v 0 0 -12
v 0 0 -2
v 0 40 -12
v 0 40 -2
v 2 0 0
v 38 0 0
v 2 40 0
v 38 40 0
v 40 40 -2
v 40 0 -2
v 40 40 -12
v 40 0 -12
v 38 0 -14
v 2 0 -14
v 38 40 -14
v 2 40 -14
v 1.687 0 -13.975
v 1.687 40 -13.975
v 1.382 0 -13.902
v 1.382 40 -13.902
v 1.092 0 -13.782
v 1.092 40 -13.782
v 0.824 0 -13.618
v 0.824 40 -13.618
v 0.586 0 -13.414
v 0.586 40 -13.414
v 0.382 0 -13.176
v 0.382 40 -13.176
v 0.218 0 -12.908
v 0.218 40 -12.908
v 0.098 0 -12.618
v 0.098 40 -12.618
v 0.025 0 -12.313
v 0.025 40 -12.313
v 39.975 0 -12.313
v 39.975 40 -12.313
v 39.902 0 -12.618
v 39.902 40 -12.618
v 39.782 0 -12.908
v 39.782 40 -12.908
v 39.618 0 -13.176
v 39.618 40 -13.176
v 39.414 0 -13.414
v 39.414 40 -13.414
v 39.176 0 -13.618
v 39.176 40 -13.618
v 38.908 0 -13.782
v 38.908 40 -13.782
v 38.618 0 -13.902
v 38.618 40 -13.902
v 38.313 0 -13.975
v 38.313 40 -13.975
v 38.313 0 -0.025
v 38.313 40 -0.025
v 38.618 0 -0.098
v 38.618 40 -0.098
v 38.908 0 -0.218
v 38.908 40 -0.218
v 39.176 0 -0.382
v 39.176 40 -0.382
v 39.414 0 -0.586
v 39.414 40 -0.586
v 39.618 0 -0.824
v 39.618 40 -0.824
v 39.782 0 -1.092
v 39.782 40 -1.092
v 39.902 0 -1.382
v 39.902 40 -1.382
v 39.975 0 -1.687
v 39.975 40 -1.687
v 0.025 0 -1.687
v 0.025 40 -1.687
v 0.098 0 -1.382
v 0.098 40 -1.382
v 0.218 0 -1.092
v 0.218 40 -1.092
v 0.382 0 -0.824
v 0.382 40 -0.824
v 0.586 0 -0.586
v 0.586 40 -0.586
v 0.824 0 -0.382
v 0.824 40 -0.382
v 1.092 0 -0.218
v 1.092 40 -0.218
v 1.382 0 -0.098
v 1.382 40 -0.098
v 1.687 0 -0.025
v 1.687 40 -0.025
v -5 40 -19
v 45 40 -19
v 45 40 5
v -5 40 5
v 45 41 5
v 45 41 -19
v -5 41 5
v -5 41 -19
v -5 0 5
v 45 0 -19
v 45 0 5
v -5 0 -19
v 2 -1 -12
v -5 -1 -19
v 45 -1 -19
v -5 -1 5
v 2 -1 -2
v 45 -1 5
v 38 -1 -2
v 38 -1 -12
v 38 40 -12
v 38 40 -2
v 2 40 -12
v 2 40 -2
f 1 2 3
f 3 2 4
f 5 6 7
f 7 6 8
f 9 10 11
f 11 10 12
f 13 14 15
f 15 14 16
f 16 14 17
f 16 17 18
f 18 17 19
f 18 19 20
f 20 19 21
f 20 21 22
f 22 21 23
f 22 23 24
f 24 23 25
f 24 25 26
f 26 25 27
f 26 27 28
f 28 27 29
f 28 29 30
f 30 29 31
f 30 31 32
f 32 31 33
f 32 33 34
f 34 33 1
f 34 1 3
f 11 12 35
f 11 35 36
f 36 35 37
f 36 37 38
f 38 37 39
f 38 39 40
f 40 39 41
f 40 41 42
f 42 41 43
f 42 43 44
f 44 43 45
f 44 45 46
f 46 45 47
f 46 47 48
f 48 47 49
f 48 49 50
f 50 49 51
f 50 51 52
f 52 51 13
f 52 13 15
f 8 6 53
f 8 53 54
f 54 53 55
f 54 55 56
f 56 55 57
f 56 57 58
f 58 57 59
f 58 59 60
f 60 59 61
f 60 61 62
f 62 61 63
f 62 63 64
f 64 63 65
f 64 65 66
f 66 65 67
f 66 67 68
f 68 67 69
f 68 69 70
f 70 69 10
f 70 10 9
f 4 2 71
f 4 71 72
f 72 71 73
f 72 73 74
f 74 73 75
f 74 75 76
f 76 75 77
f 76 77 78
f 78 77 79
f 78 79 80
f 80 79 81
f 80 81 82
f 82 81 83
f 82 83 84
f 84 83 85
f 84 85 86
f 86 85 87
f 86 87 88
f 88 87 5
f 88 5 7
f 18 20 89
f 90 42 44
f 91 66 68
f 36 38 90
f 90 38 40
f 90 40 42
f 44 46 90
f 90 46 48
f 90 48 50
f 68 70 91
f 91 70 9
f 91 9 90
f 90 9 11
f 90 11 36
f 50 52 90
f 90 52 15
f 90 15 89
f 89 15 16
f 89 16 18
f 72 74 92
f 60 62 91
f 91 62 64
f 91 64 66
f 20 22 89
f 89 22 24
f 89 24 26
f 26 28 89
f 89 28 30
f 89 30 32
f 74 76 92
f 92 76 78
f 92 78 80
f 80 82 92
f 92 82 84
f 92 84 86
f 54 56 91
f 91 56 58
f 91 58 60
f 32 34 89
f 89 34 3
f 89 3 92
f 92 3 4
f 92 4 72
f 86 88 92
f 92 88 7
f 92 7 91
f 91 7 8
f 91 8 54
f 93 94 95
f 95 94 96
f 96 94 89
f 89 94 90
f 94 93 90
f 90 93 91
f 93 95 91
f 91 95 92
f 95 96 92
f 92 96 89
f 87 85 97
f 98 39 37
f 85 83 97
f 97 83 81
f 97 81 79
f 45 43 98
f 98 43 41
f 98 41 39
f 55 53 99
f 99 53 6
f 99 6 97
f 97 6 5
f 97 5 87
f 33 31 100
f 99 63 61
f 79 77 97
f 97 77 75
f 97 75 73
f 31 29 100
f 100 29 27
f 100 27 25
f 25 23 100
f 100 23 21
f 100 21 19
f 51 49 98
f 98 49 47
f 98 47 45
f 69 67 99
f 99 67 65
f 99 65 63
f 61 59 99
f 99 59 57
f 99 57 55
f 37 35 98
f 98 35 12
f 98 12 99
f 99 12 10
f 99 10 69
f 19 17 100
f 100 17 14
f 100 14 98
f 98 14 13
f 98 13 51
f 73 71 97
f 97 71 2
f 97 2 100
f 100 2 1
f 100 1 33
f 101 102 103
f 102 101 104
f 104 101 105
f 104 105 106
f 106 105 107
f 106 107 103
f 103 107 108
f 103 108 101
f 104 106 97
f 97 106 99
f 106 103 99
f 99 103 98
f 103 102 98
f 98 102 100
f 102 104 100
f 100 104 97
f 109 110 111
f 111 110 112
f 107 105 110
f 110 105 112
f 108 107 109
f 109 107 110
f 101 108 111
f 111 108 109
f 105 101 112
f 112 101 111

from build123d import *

# Parameters (mm, degrees)
SKETCH_1_W          = 40
SKETCH_1_H          = 14
EXTRUDE_1_DEPTH     = 40
SKETCH_6_W          = 36
SKETCH_6_H          = 10
CUT_EXTRUDE_2_DEPTH = 41
SKETCH_15_OUTSIDE_W = 53.656
SKETCH_15_OUTSIDE_H = 27.656
CUT_EXTRUDE_5_DEPTH = 41
SKETCH_16_W         = 50
SKETCH_16_H         = 24
EXTRUDE_2_DEPTH     = 1
SKETCH_17_W         = 50
SKETCH_17_H         = 24
EXTRUDE_3_DEPTH     = 1
SKETCH_18_W         = 36
SKETCH_18_H         = 10
CUT_EXTRUDE_6_DEPTH = 1


with BuildPart() as part:
    # 草图1 → 凸台-拉伸1 (new body)
    with BuildSketch(Plane(origin=(0, 0, 0), x_dir=(1, 0, 0), z_dir=(0, 1, 0))):
        with Locations((20, 7)):
            Rectangle(SKETCH_1_W, SKETCH_1_H)
    extrude(amount=EXTRUDE_1_DEPTH)

    # 草图6 → 切除-拉伸2 (cut, through all)
    with BuildSketch(Plane(origin=(0, 40, 0), x_dir=(1, 0, 0), z_dir=(0, 1, 0))):
        with Locations((20, 7)):
            Rectangle(SKETCH_6_W, SKETCH_6_H)
    extrude(amount=-CUT_EXTRUDE_2_DEPTH, mode=Mode.SUBTRACT)

    # 草图15 outside → 切除-拉伸5 (cut, through all)
    with BuildSketch(Plane.XZ):
        with Locations((20, -7)):
            Rectangle(SKETCH_15_OUTSIDE_W, SKETCH_15_OUTSIDE_H)
        with BuildLine():
            Line((2, -14), (38, -14))
            ThreePointArc((38, -14), (39.414213562, -13.414213562), (40, -12))
            Line((40, -12), (40, -2))
            ThreePointArc((40, -2), (39.414213562, -0.585786438), (38, 0))
            Line((38, 0), (2, 0))
            ThreePointArc((2, 0), (0.585786438, -0.585786438), (0, -2))
            Line((0, -2), (0, -12))
            ThreePointArc((0, -12), (0.585786438, -13.414213562), (2, -14))
        make_face(mode=Mode.SUBTRACT)
    extrude(amount=-CUT_EXTRUDE_5_DEPTH, mode=Mode.SUBTRACT)

    # 草图16 → 凸台-拉伸2 (add)
    with BuildSketch(Plane(origin=(0, 40, 0), x_dir=(1, 0, 0), z_dir=(0, 1, 0))):
        with Locations((20, 7)):
            Rectangle(SKETCH_16_W, SKETCH_16_H)
    extrude(amount=EXTRUDE_2_DEPTH)

    # 草图17 → 凸台-拉伸3 (add)
    with BuildSketch(Plane.XZ):
        with Locations((20, -7)):
            Rectangle(SKETCH_17_W, SKETCH_17_H)
    extrude(amount=EXTRUDE_3_DEPTH)

    # 草图18 → 切除-拉伸6 (cut)
    with BuildSketch(Plane(origin=(0, -1, 0), x_dir=(-1, 0, 0), z_dir=(0, -1, 0))):
        with Locations((-20, 7)):
            Rectangle(SKETCH_18_W, SKETCH_18_H)
    extrude(amount=-CUT_EXTRUDE_6_DEPTH, mode=Mode.SUBTRACT)


solid = part.part
